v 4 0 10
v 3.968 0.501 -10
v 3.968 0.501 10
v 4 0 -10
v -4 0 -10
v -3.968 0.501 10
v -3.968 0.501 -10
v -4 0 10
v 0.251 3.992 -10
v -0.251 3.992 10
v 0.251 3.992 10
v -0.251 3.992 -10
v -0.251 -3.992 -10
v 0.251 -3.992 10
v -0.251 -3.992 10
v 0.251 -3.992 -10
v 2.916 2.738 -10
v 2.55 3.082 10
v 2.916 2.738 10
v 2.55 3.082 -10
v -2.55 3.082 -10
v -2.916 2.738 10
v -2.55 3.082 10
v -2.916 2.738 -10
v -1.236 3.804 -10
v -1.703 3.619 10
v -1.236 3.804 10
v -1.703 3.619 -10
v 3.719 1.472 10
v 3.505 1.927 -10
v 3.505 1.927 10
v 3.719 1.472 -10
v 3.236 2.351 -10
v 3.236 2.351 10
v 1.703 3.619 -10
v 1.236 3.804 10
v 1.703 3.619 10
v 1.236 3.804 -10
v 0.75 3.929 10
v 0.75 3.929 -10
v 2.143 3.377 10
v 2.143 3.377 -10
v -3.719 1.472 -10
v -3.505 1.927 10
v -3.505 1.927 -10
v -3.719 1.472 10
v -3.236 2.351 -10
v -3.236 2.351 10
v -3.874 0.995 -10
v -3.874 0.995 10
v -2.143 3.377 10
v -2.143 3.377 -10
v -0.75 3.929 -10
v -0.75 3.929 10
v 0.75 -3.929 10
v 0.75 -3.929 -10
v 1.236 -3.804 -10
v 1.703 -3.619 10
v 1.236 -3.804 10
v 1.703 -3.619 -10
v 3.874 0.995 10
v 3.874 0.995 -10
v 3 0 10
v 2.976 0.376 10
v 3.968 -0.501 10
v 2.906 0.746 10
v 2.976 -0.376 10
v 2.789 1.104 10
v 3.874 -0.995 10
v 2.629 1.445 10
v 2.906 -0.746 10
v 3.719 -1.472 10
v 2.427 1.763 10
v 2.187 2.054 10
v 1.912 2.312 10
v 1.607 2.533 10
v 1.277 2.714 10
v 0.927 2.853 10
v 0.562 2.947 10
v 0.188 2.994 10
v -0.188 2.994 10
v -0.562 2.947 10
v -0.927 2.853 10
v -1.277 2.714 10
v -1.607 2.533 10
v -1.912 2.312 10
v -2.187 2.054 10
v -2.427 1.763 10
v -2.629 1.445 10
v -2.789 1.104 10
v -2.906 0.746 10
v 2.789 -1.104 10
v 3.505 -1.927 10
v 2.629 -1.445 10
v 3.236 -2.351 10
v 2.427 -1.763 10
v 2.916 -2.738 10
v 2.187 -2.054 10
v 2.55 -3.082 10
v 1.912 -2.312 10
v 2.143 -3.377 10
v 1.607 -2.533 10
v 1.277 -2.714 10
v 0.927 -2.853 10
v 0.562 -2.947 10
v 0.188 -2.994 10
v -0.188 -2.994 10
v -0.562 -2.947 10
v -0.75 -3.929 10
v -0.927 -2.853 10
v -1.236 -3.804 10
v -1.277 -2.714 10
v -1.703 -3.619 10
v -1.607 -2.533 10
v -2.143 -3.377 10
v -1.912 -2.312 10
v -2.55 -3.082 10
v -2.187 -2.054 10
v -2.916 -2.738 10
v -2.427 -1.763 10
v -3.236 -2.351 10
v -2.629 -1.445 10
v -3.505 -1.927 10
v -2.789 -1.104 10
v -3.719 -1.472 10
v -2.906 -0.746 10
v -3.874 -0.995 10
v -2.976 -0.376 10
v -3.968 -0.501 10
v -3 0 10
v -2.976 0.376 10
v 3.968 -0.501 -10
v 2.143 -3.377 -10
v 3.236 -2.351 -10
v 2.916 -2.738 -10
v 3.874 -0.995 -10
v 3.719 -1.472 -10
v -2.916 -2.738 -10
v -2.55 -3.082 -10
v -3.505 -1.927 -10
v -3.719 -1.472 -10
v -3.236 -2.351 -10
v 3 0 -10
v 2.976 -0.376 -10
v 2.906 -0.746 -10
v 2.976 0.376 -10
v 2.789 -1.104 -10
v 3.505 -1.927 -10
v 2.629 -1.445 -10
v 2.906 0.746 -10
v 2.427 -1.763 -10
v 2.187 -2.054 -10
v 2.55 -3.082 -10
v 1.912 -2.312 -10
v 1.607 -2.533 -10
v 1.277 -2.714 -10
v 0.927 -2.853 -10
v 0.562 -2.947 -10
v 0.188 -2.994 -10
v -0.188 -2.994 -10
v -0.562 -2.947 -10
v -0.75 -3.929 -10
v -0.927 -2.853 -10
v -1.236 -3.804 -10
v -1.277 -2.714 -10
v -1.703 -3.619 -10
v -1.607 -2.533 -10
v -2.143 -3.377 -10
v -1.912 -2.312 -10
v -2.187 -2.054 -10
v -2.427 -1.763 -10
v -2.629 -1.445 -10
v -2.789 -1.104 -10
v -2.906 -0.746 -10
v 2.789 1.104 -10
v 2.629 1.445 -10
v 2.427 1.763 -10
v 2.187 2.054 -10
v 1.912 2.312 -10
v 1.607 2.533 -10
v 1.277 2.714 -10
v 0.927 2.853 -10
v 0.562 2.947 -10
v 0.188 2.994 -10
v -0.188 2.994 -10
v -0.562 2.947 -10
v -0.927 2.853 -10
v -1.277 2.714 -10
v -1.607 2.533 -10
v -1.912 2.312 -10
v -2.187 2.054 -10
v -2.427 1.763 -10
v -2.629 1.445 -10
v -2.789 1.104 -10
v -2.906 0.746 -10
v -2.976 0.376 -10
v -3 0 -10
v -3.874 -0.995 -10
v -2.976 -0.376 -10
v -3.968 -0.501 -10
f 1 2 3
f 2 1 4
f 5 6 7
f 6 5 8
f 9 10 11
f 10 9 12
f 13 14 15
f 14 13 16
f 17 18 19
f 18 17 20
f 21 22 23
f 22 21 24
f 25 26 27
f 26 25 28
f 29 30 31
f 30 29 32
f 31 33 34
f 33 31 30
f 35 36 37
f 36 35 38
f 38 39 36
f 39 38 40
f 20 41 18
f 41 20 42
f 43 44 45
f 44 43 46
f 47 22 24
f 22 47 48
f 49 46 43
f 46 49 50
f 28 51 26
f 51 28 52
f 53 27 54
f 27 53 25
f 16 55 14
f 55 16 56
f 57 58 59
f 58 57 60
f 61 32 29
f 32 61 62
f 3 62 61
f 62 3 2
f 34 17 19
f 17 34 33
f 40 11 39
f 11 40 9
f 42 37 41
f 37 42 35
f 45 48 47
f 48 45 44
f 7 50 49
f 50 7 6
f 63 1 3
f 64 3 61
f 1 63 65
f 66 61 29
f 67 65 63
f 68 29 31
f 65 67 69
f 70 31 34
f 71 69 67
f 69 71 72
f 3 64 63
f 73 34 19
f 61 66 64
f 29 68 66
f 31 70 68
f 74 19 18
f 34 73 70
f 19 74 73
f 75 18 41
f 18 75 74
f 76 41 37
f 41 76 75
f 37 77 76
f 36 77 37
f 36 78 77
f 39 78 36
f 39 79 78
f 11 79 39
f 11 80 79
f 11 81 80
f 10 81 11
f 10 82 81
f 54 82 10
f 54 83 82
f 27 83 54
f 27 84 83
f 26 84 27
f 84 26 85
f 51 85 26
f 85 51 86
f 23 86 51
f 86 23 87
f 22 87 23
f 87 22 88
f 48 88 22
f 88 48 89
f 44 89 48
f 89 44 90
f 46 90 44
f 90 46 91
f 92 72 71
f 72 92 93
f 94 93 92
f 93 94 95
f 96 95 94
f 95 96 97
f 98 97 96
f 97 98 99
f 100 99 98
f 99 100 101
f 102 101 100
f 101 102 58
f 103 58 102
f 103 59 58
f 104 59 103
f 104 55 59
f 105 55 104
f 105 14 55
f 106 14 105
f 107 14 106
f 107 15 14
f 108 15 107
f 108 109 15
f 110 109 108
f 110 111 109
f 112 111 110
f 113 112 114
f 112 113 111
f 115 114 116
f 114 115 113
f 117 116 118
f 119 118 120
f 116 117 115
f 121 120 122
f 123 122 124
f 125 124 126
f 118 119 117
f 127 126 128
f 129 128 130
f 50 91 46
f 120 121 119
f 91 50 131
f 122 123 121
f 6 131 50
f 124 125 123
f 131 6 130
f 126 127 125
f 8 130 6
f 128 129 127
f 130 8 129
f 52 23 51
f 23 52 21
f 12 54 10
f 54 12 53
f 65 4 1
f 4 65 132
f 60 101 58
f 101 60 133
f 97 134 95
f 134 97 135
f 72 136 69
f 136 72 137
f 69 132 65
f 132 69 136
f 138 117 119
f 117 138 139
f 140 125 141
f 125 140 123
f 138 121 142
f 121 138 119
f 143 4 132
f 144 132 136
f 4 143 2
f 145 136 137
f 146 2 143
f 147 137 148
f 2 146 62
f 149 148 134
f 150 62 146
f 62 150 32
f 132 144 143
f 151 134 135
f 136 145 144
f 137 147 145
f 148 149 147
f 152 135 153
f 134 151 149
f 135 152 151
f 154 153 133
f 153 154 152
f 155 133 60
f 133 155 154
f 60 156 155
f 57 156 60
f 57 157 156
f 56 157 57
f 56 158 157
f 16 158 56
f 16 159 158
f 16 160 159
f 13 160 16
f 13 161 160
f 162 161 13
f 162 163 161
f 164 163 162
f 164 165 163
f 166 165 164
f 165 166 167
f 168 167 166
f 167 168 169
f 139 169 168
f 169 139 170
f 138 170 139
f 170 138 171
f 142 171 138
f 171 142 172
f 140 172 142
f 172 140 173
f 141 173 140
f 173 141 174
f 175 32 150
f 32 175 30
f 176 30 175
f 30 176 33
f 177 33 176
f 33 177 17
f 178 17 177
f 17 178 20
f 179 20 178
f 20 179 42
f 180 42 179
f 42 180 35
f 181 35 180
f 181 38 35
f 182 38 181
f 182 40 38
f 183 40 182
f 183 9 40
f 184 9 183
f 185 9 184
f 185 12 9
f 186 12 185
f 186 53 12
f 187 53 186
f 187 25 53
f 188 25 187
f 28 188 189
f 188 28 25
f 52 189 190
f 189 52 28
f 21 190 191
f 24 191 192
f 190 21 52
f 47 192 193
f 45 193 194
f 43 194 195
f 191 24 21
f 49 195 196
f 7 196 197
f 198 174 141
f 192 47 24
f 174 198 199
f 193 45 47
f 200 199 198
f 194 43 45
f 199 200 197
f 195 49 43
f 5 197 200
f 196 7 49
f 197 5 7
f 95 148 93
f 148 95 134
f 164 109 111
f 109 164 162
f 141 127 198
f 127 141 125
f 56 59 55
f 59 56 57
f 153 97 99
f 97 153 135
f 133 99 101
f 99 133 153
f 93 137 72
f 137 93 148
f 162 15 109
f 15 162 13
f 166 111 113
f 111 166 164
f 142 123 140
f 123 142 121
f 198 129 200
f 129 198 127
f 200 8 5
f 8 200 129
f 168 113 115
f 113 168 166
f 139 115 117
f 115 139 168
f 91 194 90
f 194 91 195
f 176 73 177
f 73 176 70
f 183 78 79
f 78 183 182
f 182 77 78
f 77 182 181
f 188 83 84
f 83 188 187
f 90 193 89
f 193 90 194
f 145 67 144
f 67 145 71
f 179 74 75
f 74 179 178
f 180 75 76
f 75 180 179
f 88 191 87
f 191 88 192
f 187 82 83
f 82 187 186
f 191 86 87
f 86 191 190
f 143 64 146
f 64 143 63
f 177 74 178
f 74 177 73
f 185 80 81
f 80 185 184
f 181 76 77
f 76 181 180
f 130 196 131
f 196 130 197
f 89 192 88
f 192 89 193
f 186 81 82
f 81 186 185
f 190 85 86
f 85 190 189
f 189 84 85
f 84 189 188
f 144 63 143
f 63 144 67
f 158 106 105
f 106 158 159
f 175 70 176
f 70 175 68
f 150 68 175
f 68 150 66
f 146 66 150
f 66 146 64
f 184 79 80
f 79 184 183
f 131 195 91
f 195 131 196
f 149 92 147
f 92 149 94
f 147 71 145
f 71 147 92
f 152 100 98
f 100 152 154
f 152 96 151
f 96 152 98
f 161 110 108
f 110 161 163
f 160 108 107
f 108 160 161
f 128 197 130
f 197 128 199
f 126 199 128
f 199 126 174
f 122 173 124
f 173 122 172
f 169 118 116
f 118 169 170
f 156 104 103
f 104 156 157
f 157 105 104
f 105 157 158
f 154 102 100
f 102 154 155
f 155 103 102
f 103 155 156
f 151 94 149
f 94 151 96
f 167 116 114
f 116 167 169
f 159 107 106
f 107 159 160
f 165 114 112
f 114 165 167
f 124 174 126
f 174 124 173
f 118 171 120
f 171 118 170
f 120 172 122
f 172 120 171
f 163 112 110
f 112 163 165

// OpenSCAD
$fn = 50;


difference() {
	union() {
		translate(v = [0, 0, -10.0000000000]) {
			cylinder(h = 20, r = 4.0000000000);
		}
	}
	union() {
		translate(v = [0, 0, -100.0000000000]) {
			cylinder(h = 200, r = 3);
		}
	}
}
